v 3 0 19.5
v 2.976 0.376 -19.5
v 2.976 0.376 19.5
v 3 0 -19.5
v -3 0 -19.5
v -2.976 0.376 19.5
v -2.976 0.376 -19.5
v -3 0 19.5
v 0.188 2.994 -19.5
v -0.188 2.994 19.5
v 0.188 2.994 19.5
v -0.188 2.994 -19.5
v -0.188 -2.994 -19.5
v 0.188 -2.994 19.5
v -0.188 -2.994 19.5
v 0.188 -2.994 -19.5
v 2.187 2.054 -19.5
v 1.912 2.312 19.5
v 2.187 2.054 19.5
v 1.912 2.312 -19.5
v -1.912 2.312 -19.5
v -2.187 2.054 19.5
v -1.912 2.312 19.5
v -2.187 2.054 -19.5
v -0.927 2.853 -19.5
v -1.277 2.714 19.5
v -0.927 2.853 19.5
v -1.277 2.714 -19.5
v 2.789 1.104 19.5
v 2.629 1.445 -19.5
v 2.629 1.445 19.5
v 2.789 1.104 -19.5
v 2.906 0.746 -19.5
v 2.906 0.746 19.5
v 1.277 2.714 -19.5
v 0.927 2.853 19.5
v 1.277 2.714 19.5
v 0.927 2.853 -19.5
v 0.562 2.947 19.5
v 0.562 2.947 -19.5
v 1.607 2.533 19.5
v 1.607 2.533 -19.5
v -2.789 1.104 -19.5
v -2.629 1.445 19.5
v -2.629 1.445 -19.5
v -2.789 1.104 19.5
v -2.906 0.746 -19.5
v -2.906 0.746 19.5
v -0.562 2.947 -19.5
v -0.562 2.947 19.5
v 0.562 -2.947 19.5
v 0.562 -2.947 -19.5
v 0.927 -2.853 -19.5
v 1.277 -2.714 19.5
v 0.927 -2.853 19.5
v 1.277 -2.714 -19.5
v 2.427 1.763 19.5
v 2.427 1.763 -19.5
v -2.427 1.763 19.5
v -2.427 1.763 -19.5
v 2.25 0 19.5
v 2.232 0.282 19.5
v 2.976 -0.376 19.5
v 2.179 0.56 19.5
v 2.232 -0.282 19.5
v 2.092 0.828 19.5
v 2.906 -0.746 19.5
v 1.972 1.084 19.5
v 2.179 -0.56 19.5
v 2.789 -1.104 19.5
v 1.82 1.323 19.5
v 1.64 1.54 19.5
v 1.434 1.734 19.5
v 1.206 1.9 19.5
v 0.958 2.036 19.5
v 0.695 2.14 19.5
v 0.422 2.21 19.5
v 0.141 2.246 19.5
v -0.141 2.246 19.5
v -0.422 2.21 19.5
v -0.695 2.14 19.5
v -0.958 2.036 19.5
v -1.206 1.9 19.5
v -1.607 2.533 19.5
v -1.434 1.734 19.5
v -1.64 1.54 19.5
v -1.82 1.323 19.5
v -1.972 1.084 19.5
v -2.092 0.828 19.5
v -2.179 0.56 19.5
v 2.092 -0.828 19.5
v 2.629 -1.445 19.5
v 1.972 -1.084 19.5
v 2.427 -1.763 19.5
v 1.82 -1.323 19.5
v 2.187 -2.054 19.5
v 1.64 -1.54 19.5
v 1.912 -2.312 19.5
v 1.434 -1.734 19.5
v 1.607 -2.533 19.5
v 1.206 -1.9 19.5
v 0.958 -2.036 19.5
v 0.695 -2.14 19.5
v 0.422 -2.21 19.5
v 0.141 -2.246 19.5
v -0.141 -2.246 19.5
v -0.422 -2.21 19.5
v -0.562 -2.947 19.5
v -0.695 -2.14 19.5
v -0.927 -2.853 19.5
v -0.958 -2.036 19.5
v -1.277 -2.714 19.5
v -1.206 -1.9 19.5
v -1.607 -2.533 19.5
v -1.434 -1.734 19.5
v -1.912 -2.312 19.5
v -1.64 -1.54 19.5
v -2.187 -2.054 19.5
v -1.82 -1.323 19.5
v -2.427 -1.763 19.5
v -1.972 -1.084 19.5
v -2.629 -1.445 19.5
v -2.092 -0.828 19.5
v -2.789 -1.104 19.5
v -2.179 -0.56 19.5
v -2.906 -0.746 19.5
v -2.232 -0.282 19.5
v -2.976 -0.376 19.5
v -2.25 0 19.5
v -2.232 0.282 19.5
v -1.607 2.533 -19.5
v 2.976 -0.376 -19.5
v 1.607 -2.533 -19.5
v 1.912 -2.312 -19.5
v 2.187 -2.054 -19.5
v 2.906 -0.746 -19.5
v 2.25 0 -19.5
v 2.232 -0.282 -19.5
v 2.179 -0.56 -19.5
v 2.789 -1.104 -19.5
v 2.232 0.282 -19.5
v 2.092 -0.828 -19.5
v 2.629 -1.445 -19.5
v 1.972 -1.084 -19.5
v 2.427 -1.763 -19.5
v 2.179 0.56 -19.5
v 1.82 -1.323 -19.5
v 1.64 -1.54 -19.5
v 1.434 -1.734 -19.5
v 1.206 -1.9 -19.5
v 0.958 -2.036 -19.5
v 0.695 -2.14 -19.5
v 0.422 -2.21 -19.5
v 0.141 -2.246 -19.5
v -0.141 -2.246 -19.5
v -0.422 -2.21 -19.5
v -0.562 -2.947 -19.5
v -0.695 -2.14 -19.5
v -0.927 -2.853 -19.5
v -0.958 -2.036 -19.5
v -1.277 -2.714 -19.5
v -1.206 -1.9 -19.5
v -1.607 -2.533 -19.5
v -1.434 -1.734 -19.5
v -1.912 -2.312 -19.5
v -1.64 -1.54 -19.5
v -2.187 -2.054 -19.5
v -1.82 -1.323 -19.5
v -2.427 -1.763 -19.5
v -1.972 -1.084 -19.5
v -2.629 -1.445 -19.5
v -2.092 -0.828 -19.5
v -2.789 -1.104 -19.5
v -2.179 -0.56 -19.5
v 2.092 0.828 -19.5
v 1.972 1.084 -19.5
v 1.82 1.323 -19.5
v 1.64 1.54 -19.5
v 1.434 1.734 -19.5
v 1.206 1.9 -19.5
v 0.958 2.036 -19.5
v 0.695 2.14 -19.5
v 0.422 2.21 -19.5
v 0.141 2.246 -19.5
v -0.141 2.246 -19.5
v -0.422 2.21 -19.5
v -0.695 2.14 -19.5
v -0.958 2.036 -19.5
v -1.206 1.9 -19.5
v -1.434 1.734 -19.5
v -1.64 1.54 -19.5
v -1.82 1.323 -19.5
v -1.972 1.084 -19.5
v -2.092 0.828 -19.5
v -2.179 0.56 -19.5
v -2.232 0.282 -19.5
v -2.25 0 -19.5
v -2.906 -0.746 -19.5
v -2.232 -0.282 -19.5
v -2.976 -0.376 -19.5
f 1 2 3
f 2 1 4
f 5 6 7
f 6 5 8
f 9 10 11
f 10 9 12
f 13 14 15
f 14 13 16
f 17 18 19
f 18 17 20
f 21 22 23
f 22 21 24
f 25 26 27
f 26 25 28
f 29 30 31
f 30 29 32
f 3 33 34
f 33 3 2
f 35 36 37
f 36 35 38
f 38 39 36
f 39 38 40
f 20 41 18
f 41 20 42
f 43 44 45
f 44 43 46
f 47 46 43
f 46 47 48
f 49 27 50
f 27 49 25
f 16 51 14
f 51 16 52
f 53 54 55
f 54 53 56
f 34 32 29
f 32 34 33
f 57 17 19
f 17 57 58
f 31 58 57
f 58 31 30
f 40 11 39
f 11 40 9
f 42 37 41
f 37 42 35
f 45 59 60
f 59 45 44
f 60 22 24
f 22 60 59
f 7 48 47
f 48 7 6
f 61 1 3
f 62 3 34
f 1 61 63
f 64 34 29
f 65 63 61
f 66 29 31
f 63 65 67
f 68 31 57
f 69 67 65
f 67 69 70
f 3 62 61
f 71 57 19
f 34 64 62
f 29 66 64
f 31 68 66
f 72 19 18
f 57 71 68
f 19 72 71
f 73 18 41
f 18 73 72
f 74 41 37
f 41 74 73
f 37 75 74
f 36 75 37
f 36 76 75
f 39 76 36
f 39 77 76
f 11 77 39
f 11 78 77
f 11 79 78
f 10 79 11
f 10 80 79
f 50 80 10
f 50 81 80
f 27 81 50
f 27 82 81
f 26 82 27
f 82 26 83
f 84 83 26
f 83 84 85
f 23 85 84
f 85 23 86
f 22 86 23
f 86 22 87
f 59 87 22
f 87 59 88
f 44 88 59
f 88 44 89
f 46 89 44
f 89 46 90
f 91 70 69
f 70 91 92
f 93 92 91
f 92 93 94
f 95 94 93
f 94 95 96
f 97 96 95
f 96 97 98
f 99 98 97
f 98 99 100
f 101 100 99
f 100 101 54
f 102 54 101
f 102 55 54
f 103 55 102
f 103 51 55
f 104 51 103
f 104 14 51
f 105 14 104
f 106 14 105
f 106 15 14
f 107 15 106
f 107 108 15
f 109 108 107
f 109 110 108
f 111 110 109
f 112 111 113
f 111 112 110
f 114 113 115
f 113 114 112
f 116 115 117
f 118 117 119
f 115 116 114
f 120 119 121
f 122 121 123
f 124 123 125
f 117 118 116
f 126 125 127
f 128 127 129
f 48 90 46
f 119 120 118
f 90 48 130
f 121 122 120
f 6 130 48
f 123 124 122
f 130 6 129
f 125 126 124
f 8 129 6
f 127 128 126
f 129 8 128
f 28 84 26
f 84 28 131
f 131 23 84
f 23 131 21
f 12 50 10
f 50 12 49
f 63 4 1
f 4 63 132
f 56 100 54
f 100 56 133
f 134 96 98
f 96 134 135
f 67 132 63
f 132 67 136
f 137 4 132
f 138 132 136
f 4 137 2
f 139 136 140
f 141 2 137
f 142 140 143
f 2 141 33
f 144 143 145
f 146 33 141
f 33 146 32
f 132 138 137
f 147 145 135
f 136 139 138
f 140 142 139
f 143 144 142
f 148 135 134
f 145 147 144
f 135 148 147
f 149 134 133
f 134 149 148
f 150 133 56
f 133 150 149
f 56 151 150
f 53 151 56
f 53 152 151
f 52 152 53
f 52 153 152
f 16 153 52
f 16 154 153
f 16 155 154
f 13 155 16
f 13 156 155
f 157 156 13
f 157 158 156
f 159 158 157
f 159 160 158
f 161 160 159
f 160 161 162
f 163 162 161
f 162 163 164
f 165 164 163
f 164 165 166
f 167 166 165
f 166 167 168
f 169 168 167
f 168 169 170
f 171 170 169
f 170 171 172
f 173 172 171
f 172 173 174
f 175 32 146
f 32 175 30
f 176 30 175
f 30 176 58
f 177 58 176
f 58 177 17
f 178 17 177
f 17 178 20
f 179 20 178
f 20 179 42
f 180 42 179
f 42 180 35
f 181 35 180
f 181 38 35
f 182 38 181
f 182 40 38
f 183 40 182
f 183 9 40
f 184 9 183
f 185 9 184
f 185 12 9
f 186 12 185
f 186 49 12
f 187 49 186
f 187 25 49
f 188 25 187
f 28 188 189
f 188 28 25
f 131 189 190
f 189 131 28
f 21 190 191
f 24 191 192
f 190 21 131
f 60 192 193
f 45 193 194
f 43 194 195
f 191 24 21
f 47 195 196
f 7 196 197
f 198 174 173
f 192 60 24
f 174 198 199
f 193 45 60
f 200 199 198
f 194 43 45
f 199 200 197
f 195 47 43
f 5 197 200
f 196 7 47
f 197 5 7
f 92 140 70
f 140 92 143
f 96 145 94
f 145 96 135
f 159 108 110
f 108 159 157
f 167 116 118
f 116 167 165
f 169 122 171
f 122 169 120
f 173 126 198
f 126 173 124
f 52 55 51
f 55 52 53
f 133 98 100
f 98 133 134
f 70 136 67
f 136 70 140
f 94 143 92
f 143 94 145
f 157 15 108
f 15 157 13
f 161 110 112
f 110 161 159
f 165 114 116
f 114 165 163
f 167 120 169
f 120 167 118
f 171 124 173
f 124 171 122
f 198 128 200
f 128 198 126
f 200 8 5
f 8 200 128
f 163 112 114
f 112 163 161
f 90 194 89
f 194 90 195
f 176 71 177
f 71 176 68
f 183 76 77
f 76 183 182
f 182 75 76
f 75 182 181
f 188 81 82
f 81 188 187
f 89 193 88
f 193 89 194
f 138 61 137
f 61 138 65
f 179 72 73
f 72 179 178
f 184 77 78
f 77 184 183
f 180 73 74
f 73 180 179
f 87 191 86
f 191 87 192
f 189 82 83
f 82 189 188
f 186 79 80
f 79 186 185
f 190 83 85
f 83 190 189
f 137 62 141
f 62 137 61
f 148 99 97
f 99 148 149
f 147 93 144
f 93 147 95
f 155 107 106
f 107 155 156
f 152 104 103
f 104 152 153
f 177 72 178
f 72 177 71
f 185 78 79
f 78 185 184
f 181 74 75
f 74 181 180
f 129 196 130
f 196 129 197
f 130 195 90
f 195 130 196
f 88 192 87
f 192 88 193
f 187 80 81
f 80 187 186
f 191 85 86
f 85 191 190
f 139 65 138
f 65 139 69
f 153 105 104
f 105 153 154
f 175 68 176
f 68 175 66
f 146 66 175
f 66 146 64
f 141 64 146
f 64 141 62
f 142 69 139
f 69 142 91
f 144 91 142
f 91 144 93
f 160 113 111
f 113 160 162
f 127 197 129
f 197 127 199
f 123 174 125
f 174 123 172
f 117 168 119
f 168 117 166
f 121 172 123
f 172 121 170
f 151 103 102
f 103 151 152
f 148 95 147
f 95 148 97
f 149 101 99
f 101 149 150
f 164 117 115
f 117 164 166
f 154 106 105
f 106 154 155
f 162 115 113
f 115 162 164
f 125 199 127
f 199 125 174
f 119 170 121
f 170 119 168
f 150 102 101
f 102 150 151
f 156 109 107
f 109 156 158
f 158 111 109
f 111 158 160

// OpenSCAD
$fn = 50;


difference() {
	union() {
		translate(v = [0, 0, -19.5000000000]) {
			cylinder(h = 39, r = 3.0000000000);
		}
	}
	union() {
		translate(v = [0, 0, -100.0000000000]) {
			cylinder(h = 200, r = 2.2500000000);
		}
	}
}
